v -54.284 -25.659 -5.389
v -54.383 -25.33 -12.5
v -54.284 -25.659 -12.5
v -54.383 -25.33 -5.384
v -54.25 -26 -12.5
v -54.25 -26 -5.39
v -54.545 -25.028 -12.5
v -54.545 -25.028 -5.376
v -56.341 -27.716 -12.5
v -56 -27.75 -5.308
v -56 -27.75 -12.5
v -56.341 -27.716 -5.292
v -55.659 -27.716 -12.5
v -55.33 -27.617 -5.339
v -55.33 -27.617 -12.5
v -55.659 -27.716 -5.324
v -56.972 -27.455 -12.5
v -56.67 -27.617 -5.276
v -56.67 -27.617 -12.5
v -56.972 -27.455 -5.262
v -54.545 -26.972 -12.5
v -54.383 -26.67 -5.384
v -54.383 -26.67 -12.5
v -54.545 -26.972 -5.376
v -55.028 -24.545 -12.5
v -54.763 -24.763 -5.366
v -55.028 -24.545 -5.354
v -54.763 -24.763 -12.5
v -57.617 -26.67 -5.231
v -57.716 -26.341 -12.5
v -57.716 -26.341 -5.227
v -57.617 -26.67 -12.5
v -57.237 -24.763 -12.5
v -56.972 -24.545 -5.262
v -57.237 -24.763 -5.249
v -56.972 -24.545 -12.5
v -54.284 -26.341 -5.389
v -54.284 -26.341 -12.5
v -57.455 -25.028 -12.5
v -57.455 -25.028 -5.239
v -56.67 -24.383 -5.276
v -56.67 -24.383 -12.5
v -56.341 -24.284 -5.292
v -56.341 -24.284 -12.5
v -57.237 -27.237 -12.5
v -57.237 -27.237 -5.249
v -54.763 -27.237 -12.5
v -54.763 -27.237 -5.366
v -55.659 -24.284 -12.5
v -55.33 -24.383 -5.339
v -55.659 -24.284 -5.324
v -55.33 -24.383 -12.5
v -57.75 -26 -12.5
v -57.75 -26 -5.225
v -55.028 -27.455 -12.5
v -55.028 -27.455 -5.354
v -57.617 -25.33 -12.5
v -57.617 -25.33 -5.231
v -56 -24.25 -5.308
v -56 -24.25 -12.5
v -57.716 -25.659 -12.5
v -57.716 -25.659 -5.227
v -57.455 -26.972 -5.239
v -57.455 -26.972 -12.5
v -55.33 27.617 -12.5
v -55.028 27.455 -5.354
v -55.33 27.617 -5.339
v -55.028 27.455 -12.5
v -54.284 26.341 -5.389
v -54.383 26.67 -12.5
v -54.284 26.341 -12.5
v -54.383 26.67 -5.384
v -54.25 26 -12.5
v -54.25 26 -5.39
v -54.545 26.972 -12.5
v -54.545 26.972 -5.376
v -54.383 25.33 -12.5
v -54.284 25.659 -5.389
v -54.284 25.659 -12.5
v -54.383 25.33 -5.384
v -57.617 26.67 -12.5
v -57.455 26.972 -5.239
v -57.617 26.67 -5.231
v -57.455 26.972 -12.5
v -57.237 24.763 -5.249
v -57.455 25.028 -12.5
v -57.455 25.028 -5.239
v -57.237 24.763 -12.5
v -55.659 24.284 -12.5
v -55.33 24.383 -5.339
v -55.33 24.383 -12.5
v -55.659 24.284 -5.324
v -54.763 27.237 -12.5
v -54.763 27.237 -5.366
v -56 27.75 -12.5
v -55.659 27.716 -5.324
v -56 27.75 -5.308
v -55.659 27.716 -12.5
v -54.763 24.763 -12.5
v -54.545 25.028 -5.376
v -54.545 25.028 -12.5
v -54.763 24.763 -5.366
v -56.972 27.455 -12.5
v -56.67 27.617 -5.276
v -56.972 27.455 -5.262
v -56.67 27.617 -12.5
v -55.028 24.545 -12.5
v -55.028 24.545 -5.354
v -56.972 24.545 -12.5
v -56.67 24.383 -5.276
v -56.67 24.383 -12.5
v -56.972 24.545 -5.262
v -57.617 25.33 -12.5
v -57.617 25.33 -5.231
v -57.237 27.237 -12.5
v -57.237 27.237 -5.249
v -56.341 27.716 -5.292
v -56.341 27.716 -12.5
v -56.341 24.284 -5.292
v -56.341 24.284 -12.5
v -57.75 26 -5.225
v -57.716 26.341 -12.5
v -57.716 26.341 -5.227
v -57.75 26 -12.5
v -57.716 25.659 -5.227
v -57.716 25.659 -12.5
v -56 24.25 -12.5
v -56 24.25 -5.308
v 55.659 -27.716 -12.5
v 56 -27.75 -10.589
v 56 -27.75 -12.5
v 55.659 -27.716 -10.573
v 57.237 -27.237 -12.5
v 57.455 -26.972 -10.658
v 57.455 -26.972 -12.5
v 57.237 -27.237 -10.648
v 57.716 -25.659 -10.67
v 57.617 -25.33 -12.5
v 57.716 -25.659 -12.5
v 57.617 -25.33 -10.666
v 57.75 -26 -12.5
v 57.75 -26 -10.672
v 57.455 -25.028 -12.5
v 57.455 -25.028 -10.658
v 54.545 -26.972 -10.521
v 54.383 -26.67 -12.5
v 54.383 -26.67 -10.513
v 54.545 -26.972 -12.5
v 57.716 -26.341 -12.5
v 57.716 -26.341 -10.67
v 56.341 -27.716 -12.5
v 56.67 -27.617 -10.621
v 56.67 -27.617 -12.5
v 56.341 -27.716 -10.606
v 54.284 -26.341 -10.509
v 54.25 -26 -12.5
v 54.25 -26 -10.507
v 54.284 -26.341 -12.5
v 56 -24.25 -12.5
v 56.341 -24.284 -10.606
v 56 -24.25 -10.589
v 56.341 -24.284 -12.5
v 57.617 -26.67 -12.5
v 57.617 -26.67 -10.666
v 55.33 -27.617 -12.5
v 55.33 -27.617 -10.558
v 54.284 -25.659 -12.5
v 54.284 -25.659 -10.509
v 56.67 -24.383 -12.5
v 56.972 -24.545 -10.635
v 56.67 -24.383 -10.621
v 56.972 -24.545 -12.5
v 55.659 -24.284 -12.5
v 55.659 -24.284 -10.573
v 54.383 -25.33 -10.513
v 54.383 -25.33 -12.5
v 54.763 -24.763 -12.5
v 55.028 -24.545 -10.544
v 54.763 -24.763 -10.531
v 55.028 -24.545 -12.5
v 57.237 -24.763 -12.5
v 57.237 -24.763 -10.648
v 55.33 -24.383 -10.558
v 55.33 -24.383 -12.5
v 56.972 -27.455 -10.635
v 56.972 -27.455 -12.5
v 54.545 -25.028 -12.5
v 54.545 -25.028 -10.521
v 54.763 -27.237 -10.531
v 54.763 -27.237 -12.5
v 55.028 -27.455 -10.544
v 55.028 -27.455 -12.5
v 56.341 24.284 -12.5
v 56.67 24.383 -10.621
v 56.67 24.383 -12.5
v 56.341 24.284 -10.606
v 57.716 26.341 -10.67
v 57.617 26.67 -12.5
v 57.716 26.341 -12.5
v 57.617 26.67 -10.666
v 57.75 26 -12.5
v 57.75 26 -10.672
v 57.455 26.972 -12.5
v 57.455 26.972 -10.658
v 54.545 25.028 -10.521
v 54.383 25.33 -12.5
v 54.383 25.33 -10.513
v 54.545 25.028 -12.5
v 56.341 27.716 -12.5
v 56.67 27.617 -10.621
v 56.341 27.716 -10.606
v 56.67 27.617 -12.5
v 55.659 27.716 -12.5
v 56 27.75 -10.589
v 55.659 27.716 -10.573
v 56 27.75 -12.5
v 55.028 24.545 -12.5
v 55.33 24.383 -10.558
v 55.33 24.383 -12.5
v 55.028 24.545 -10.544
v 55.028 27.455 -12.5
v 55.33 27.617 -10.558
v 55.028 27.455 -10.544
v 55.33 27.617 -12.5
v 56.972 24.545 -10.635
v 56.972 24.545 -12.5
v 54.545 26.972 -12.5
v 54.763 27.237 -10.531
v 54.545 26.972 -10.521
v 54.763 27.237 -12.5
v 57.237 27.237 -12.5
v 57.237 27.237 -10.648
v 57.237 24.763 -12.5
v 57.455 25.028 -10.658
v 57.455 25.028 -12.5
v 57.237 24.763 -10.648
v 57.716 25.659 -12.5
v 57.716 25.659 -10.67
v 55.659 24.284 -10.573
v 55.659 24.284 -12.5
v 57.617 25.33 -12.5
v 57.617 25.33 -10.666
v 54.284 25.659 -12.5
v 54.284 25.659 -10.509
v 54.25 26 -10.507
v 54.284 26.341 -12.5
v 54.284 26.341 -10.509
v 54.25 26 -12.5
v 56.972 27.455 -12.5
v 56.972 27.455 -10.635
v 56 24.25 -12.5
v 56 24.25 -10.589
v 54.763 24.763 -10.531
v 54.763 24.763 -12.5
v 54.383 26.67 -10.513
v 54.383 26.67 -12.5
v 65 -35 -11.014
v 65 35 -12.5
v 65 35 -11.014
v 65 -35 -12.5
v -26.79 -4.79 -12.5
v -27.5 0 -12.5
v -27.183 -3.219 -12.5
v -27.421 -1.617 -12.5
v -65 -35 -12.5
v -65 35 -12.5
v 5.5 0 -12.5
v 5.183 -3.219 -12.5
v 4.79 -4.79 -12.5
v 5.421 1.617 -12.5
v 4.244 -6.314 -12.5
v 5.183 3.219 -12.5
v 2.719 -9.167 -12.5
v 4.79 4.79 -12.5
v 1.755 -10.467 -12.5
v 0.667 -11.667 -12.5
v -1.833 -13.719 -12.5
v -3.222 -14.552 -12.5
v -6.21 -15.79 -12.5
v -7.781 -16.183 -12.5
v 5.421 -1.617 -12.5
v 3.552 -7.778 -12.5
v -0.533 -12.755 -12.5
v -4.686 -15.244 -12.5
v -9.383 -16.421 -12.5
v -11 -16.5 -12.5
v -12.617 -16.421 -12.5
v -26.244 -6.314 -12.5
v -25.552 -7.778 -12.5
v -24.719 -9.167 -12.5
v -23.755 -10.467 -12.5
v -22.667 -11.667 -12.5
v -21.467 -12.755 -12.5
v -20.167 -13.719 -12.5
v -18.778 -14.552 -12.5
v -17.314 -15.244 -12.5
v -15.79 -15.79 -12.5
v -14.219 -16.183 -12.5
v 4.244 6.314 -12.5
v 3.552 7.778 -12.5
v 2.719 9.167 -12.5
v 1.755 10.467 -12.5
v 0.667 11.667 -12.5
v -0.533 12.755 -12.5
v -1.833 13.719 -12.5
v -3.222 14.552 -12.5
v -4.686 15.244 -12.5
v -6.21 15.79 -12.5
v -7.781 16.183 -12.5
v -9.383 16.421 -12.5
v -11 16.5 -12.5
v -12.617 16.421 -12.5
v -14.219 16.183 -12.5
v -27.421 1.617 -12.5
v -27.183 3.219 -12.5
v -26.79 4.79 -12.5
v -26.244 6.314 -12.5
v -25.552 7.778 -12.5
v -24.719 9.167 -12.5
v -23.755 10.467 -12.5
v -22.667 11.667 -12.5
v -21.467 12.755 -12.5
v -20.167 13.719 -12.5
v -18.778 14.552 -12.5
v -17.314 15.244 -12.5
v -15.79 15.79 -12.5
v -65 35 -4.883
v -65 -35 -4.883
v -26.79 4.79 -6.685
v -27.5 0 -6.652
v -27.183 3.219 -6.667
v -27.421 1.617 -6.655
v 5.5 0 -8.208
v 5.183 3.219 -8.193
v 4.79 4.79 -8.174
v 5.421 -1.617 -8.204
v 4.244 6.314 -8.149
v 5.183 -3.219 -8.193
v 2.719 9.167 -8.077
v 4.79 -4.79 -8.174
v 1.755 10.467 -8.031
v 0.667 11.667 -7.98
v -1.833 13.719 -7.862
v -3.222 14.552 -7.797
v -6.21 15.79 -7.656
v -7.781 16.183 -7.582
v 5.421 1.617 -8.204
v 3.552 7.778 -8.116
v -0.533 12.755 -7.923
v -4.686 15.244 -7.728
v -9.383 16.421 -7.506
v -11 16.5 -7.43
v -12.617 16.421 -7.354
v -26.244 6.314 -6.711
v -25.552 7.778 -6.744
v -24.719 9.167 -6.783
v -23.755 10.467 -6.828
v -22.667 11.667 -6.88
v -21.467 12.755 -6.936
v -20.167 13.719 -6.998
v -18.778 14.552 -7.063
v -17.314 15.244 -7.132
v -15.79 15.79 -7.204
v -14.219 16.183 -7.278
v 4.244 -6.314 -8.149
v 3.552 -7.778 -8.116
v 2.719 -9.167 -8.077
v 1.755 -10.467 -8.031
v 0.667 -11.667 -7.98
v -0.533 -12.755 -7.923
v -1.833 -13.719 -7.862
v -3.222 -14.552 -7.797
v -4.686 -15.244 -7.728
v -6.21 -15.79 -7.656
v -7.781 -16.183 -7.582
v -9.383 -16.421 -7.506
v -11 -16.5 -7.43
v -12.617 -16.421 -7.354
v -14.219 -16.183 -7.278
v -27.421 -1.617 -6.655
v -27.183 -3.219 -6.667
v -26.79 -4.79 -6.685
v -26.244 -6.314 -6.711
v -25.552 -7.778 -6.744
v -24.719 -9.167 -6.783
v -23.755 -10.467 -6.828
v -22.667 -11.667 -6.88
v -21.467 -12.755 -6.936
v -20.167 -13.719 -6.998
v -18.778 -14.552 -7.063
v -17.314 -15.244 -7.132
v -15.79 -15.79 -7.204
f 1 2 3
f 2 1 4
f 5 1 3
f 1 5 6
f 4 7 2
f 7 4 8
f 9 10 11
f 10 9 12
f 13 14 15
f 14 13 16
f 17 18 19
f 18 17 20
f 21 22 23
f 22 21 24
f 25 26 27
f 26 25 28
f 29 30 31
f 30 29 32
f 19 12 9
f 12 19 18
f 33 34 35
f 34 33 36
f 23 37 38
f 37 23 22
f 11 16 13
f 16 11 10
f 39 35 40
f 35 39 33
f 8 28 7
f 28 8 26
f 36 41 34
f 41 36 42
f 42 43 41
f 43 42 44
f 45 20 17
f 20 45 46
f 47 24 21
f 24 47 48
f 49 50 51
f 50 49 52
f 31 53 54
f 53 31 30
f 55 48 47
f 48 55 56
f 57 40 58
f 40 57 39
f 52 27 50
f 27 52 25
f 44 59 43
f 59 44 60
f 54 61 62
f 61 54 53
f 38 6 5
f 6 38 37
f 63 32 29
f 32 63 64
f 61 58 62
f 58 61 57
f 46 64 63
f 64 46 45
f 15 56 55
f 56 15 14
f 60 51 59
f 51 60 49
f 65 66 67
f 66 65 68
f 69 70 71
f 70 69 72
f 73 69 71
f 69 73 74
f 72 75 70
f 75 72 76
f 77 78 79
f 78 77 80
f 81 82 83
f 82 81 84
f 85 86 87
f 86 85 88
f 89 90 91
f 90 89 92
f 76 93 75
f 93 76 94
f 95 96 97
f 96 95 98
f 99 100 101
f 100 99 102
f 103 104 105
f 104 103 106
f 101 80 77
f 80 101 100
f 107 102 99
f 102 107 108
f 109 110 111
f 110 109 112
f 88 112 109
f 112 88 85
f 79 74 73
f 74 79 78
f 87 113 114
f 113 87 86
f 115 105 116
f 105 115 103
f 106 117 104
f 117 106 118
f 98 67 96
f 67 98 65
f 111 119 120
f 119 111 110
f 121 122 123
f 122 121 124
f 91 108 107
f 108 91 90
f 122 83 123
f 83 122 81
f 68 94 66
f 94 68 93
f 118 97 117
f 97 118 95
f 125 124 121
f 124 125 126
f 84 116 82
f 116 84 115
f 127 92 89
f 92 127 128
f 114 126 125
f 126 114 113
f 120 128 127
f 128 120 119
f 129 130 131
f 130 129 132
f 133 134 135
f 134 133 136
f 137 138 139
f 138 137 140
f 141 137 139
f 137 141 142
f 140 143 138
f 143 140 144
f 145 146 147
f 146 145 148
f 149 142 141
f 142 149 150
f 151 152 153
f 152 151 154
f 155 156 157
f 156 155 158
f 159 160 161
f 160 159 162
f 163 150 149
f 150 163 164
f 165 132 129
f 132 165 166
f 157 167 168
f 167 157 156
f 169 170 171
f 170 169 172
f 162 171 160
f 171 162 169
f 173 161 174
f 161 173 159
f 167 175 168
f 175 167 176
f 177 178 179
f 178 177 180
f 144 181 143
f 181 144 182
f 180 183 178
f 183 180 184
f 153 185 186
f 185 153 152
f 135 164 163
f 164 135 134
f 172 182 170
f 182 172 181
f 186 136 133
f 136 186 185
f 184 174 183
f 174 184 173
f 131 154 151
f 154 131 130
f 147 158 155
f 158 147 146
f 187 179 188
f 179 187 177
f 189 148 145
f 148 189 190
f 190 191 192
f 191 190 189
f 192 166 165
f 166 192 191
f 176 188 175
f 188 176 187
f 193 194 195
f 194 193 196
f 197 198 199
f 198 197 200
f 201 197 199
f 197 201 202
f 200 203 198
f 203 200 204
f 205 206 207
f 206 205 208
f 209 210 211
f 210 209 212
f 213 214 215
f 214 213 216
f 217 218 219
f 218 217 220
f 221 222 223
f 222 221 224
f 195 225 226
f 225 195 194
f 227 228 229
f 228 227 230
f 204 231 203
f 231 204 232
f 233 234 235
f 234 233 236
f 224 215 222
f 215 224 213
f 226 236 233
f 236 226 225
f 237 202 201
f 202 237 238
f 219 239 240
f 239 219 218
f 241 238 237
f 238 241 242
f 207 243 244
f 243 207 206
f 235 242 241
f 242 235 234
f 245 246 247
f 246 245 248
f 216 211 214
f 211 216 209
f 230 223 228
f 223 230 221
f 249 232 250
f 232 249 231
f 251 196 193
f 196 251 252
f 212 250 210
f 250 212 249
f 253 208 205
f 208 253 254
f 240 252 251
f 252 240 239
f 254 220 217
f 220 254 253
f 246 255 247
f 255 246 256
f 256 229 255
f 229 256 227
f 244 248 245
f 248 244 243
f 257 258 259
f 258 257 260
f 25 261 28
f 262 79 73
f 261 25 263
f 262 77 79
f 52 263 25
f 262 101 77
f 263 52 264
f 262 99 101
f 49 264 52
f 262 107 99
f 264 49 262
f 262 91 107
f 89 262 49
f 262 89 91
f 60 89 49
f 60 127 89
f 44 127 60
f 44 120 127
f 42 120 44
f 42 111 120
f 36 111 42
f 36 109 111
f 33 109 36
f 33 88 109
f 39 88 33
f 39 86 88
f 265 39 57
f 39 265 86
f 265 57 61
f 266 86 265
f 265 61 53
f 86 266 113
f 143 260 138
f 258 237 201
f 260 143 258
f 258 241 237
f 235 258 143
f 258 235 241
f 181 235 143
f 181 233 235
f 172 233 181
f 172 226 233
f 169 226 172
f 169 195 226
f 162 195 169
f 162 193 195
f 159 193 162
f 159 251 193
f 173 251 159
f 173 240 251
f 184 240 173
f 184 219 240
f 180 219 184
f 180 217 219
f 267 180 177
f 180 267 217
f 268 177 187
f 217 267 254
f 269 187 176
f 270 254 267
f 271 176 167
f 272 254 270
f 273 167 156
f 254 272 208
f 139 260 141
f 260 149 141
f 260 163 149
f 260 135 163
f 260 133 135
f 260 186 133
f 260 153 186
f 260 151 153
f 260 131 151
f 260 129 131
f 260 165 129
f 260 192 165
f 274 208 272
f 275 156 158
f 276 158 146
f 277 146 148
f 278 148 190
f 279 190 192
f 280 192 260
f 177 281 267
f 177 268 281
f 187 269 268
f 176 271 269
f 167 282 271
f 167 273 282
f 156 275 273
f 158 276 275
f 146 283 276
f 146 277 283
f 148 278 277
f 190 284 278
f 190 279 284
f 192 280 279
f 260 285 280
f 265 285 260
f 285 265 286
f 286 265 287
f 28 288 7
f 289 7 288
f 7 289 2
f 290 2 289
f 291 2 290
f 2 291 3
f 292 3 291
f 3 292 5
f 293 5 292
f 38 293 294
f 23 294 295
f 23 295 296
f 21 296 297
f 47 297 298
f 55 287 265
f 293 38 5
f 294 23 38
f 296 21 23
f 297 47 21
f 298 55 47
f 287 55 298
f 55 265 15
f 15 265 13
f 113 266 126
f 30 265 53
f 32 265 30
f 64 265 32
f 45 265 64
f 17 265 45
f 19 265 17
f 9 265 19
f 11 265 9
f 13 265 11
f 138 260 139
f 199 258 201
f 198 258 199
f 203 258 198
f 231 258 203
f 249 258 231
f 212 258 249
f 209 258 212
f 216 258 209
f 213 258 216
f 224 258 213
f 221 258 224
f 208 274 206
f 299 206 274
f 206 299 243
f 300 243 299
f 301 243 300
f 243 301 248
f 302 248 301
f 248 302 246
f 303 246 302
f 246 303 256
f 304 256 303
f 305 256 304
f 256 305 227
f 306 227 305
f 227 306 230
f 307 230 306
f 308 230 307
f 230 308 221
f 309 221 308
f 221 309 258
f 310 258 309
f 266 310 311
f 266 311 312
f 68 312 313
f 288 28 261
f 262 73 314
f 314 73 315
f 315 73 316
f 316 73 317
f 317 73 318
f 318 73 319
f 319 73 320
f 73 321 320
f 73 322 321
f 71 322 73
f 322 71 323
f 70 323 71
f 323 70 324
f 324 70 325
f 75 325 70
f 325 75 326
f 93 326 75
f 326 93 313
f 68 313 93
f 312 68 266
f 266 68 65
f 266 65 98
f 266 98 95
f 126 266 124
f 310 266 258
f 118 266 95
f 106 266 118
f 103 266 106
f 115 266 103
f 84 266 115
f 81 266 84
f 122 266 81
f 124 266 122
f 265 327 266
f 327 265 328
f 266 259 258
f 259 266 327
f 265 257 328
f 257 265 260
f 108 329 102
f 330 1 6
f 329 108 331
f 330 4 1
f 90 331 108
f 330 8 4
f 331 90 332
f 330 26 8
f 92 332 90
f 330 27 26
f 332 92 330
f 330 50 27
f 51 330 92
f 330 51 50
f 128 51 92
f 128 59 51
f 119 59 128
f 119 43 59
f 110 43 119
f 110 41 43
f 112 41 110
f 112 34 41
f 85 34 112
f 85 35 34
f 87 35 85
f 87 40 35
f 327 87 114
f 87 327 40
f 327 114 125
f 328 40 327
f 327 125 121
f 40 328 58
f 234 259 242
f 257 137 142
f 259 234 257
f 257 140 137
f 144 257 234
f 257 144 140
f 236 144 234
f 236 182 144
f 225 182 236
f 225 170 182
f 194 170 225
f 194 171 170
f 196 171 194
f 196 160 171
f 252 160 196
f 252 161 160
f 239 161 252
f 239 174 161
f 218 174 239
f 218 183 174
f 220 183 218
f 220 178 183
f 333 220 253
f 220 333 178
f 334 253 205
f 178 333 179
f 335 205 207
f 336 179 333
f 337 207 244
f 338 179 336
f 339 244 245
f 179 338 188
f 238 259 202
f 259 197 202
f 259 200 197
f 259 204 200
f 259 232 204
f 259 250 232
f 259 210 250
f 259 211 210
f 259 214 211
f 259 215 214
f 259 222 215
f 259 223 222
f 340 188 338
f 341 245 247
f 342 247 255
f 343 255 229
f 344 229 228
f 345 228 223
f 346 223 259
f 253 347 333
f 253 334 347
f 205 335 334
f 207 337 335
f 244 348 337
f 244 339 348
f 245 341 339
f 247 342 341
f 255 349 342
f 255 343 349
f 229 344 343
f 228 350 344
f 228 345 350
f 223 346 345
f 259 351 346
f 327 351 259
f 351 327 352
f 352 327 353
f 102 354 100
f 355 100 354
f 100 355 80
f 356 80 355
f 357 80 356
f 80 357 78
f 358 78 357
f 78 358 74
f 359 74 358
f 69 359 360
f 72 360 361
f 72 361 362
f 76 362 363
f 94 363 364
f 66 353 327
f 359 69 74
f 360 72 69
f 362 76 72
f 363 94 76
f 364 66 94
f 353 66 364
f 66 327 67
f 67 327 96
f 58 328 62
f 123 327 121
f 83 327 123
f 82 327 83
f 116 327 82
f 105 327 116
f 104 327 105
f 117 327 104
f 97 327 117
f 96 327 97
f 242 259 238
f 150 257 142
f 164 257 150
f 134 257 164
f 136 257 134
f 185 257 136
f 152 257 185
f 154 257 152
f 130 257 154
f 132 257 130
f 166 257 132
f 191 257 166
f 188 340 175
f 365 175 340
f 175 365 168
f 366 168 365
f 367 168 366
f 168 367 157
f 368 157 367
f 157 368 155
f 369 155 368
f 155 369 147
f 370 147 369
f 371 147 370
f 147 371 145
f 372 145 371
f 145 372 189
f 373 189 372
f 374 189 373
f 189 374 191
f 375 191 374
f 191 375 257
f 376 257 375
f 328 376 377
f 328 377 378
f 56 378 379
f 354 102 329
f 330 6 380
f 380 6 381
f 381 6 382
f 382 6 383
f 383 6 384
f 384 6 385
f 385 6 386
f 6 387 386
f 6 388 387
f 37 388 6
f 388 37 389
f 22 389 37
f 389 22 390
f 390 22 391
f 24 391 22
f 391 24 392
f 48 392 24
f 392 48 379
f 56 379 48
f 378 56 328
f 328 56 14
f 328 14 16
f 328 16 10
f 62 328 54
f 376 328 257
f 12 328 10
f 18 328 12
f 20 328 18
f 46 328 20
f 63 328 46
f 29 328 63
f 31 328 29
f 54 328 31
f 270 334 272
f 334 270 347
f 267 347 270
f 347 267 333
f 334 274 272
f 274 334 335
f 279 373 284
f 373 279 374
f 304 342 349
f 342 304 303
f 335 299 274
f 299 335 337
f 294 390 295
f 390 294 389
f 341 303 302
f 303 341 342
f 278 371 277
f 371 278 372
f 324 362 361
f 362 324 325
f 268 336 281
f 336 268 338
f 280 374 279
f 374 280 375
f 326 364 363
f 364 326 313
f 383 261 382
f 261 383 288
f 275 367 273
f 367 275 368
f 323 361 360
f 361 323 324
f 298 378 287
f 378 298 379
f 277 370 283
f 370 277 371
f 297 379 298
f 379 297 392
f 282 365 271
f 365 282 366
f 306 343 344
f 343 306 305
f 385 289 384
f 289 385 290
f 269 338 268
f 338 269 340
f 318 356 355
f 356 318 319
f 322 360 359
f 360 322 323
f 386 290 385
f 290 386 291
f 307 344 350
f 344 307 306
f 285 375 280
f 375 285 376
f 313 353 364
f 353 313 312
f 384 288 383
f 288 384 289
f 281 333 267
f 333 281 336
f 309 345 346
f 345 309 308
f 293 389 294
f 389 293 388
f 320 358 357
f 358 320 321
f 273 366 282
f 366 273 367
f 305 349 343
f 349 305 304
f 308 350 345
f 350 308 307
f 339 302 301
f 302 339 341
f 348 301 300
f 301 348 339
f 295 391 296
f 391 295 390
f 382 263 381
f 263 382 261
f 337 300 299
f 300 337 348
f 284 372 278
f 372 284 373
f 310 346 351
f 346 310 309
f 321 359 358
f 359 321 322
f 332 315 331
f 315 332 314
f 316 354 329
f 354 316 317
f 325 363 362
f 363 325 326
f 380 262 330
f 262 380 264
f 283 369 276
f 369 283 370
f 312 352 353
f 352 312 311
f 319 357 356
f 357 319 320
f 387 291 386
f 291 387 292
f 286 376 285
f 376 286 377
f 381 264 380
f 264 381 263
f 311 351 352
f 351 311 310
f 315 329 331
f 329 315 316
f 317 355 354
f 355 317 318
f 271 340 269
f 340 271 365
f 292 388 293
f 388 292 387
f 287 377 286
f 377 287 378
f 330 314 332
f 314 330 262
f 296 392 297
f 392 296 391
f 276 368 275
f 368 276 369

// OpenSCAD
// ── Parameters ──────────────────────────────────────────────
wedge_angle = 2.7; // tank lid slope (8mm over 170mm)

// Box dimensions
base_l = 130; // length (mm)
base_w = 70; // width (mm)
base_wall = 3; // wall thickness (mm)
min_thickness = 3; // min thickness (mm)
max_thickness = 25; // max thickness (mm)

// ── screw_holes
screw_hole_offset = 12; // how far from edge (mm)
screw_hole_d = 3.5; // diameter of hole for screws (mm)

// Position bosses inset from interior cavity corners (moved inward for better screw placement)
screw_hole_x = base_l / 2 - base_wall - screw_hole_offset / 2;
screw_hole_y = base_w / 2 - base_wall - screw_hole_offset / 2;

// ── sensor hole ──────────────────────────────────────────
sensor_insert_d = 22; // sensor insert diameter (mm)
sensor_hole_d = sensor_insert_d * 1.5; // sensor flange diameter for hole through floor (mm)
sensor_hole_x = -sensor_insert_d / 2; // position of hole through floor (mm)


difference() {

  // step 1 - create a box with a wedge cut out of the bottom
  cube([base_l, base_w, max_thickness], center=true);

  // step 2 - cut out a wedge from the bottom of the box
  translate([base_l/2, 0, min_thickness / 2])
    rotate([0, wedge_angle, 0])
      cube([base_l * 4, base_w * 4, max_thickness], center=true);

  // step 3 - cut out the boss holes (go all the way through entire model)
  for (x = [-1, 1], y = [-1, 1]) {
    translate([x * screw_hole_x, y * screw_hole_y, 0])
      cylinder(h=max_thickness * 2, d=screw_hole_d, center=true, $fn=32);
  }

  // Bottom sensor hole
  translate([sensor_hole_x, 0, 0])
    cylinder(h=max_thickness * 2, d=sensor_hole_d, center=true, $fn=64);


}
